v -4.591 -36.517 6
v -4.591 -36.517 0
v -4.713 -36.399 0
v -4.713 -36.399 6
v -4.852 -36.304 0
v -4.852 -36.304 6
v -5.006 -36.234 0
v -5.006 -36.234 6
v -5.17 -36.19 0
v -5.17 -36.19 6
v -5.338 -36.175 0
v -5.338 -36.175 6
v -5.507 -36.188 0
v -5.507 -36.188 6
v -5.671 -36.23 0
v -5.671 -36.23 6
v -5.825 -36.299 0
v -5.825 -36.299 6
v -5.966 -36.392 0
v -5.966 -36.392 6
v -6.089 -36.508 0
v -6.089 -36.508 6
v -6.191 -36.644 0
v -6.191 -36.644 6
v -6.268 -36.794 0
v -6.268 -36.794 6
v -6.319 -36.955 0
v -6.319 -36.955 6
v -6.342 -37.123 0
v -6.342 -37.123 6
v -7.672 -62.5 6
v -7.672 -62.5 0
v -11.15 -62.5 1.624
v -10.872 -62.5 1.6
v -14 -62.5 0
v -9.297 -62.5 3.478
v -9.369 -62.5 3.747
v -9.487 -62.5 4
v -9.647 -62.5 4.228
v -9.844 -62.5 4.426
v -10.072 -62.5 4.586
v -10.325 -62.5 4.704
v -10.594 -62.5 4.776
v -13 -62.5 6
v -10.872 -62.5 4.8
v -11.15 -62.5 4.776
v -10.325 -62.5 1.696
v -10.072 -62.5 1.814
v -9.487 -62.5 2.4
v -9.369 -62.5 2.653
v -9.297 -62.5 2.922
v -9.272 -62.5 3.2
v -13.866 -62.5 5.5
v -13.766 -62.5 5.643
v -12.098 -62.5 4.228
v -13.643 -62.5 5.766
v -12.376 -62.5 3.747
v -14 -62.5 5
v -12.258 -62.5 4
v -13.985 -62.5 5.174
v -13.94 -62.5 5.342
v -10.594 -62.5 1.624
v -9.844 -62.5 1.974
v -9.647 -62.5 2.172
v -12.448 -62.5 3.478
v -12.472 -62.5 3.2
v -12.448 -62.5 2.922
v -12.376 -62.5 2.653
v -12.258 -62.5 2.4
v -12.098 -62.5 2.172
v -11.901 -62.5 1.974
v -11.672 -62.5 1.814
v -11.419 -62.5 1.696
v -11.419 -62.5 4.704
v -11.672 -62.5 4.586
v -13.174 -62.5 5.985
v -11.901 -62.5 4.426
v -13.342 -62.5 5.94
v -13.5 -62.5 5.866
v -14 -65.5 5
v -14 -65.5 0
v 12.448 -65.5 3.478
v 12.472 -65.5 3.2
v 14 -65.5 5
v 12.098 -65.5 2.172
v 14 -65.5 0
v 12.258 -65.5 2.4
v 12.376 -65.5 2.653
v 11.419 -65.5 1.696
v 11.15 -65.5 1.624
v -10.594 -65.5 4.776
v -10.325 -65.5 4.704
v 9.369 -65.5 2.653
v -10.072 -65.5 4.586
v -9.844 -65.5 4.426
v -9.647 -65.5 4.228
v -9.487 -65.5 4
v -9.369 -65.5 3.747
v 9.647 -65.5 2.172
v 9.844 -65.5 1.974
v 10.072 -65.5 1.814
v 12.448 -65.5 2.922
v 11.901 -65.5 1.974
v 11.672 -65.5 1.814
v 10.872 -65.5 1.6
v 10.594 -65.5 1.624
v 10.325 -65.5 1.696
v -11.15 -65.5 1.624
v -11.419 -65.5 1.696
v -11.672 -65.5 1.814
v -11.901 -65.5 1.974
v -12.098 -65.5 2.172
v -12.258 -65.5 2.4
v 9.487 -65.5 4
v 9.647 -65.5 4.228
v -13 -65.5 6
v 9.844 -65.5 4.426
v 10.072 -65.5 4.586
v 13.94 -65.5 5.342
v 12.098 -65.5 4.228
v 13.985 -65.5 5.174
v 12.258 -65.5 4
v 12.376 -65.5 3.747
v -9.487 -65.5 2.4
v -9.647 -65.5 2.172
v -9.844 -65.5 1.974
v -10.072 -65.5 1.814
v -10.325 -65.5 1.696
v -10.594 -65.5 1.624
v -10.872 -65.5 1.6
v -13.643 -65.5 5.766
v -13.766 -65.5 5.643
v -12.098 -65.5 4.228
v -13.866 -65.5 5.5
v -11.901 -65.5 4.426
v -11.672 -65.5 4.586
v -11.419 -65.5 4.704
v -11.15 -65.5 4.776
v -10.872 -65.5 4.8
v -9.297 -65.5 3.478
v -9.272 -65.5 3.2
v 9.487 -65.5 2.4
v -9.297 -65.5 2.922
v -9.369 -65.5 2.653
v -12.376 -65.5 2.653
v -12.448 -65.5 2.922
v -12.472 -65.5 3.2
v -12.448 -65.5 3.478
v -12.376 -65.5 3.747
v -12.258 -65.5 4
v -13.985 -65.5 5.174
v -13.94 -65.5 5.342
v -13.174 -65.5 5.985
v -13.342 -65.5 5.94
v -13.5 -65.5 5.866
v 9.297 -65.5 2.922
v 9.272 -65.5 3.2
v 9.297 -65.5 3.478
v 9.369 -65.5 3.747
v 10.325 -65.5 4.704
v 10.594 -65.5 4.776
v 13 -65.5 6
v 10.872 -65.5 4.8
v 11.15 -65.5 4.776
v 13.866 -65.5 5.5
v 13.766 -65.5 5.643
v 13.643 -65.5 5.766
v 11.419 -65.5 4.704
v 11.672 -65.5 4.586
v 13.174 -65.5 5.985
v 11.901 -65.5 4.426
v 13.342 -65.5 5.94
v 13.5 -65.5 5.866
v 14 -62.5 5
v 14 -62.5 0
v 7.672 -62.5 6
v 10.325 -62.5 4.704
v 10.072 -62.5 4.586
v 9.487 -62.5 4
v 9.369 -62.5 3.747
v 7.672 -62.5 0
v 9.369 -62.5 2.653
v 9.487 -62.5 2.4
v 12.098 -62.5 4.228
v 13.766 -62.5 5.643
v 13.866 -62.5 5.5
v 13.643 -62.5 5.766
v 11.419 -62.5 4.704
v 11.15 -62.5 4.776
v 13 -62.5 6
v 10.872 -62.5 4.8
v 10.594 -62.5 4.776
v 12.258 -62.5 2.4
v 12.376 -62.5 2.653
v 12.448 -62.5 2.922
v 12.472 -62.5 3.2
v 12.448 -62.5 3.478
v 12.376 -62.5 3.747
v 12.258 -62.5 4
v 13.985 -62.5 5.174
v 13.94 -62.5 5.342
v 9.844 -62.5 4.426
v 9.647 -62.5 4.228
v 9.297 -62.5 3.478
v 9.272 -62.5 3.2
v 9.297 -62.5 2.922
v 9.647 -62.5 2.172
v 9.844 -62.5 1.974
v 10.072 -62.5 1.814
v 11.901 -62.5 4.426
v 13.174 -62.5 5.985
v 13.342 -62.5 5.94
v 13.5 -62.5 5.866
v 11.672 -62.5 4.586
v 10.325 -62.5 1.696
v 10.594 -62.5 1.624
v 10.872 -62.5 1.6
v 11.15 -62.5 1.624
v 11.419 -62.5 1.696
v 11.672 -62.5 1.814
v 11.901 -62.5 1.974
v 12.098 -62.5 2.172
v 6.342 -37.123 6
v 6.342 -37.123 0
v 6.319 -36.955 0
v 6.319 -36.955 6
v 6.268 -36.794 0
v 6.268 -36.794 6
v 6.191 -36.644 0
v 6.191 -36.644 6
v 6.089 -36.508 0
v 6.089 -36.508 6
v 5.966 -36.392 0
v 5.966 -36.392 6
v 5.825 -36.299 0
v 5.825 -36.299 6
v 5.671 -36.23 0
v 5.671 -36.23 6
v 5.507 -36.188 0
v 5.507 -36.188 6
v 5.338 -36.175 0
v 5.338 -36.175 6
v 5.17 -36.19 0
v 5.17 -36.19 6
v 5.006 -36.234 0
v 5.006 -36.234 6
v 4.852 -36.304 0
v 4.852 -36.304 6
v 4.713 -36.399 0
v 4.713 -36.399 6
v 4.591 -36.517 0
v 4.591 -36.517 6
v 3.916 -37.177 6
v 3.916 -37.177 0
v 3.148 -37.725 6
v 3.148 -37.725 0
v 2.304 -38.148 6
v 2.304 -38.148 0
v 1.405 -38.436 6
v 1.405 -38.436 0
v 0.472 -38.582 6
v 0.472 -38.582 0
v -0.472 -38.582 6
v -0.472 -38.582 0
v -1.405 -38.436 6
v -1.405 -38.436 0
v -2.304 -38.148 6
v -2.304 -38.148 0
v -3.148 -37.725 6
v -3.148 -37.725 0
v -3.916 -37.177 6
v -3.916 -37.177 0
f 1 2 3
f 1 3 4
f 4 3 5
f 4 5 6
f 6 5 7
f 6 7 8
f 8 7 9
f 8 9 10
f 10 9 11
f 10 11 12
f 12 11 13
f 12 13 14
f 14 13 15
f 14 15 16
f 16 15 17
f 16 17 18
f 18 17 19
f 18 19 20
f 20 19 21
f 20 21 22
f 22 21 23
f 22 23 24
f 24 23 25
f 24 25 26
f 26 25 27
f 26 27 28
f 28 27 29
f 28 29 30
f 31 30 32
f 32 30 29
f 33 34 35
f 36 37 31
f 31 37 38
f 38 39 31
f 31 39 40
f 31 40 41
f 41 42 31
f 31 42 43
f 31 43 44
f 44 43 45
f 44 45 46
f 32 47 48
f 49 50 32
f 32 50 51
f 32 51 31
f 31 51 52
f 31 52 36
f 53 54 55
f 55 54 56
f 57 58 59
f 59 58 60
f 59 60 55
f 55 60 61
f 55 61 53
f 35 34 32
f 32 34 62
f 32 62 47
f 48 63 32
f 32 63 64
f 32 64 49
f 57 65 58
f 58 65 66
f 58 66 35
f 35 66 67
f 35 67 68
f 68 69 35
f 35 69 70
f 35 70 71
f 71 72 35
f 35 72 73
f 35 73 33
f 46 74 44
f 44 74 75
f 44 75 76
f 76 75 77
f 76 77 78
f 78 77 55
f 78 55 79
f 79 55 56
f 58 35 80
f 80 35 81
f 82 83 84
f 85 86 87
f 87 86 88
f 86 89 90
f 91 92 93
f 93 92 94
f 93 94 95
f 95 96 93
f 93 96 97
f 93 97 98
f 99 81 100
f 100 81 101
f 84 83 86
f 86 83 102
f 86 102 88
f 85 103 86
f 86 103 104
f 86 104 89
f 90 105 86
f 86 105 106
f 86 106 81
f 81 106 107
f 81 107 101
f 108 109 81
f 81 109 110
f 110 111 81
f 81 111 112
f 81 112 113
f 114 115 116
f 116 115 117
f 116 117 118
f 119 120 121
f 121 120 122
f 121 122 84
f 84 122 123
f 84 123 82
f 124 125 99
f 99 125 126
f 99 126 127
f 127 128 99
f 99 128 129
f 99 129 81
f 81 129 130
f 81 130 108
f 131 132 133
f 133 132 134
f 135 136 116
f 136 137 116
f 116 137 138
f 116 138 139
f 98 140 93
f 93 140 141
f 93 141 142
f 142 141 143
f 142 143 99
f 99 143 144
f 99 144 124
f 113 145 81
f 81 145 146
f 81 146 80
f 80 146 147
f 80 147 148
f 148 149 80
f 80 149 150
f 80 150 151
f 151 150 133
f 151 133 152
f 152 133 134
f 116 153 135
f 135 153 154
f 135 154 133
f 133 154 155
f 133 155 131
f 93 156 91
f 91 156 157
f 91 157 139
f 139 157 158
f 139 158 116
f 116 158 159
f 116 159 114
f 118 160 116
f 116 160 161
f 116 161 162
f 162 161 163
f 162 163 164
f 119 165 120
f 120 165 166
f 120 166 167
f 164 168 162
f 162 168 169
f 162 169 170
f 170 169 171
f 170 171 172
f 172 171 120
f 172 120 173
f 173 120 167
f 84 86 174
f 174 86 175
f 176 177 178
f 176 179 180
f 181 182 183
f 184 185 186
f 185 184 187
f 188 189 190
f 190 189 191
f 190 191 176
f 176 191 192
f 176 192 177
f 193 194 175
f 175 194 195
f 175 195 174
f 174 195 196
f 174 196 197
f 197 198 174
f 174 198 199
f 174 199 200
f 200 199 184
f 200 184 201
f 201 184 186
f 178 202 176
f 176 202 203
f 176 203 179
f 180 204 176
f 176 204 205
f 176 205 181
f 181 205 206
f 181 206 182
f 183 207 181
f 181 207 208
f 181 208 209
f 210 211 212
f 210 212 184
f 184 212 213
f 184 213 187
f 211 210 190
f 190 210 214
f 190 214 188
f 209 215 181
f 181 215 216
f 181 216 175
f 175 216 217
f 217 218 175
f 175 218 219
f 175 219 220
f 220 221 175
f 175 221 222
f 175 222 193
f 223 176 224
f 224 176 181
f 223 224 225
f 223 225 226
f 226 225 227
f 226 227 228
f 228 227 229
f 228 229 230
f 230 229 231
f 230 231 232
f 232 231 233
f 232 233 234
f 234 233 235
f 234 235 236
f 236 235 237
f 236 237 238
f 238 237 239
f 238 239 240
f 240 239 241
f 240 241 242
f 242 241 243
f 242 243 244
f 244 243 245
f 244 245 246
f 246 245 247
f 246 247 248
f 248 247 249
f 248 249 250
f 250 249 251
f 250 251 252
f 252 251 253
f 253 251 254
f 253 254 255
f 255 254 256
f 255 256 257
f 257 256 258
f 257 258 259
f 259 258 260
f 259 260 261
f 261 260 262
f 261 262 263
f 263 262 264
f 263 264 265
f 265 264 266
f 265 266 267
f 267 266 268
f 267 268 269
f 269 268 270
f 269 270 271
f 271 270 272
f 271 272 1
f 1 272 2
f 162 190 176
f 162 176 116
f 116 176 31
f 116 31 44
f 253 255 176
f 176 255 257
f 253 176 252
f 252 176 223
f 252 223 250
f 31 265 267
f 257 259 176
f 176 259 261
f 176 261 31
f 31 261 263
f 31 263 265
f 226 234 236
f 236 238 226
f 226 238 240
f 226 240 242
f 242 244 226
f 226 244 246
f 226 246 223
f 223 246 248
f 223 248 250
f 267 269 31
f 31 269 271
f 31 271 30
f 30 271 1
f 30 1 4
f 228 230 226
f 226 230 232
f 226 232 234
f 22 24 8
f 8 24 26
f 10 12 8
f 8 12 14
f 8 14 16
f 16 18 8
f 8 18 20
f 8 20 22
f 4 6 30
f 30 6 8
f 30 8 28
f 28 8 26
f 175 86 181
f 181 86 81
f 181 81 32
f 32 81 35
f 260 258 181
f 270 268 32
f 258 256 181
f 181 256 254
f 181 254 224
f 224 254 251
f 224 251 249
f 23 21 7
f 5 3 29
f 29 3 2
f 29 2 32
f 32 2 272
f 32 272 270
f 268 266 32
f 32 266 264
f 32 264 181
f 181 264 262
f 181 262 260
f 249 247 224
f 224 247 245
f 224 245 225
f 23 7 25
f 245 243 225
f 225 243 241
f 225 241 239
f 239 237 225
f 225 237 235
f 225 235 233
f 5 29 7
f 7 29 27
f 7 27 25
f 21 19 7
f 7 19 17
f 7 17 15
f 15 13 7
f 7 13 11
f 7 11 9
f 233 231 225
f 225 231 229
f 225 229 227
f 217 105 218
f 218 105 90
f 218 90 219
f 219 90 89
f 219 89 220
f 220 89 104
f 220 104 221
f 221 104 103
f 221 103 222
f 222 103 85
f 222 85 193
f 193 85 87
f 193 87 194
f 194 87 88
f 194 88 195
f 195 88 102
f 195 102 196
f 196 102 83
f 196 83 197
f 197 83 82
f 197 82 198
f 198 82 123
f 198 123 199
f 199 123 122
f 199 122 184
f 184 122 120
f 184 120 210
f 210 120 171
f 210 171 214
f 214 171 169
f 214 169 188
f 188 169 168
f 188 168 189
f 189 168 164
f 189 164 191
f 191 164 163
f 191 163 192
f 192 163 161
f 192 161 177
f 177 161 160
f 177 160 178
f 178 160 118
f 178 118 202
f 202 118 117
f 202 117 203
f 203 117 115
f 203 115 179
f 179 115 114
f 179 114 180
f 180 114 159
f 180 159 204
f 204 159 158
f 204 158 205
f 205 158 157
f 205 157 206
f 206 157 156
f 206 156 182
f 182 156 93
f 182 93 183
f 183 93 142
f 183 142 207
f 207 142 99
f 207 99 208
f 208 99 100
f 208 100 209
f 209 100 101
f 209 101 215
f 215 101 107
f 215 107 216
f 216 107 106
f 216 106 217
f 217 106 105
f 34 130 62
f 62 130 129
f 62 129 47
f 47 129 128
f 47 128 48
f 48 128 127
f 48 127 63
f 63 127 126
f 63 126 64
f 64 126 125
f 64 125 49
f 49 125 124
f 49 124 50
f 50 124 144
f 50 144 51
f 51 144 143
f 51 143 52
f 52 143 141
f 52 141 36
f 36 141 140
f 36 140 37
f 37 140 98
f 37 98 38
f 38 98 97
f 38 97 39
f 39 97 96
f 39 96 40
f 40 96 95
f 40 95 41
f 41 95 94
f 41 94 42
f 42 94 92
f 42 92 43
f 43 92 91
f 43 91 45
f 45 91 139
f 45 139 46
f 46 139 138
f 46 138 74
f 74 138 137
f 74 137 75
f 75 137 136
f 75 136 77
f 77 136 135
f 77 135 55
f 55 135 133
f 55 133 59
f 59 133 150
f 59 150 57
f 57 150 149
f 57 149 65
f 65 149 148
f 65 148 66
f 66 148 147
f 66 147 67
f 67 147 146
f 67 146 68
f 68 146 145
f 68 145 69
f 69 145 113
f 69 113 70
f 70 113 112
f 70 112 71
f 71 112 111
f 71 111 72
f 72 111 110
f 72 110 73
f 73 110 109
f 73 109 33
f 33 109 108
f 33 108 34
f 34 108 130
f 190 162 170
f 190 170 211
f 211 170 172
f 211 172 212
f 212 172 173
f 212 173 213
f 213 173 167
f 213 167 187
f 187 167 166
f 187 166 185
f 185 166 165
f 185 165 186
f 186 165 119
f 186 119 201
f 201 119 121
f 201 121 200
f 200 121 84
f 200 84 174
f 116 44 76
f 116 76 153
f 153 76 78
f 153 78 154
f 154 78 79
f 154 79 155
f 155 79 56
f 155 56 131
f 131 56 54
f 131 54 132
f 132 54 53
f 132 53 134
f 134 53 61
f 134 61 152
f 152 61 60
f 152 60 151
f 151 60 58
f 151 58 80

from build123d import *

# Parameters (mm, degrees)
BOSS_EXTRUDE1_DEPTH = 6
SKETCH2_R           = 1.6
CUT_EXTRUDE1_DEPTH  = 10
FILLET1_R           = 1


with BuildPart() as part:
    # Sketch1 → Boss-Extrude1 (new body)
    with BuildSketch(Plane.XY):
        with BuildLine():
            Line((-6.342263295, -37.122659043), (-7.672233378, -62.5))
            Line((-7.672233378, -62.5), (-14, -62.5))
            Line((-14, -62.5), (-14, -65.5))
            Line((-14, -65.5), (14, -65.5))
            Line((14, -65.5), (14, -62.5))
            Line((14, -62.5), (7.672233378, -62.5))
            Line((7.672233378, -62.5), (6.342263295, -37.122659043))
            ThreePointArc((6.342263295, -37.122659043), (5.670701308, -36.229994036), (4.591009287, -36.516544999))
            ThreePointArc((4.591009287, -36.516544999), (0, -38.6), (-4.591009287, -36.516544999))
            ThreePointArc((-4.591009287, -36.516544999), (-5.670701308, -36.229994036), (-6.342263295, -37.122659043))
        make_face()
    extrude(amount=BOSS_EXTRUDE1_DEPTH)

    # Sketch2 → Cut-Extrude1 (cut)
    with BuildSketch(Plane.XZ.offset(65.5)):
        with Locations(Location((10.872233378, 3.2, 0), (0, 0, 270))):
            Circle(SKETCH2_R)
        with Locations(Location((-10.872233378, 3.2, 0), (0, 0, 270))):
            Circle(SKETCH2_R)
    extrude(amount=-CUT_EXTRUDE1_DEPTH, mode=Mode.SUBTRACT)

    # Fillet1
    fillet1_edges = [part.edges().sort_by_distance(p)[0] for p in [
        (-14, -64, 6),
        (14, -64, 6),
    ]]
    fillet(fillet1_edges, radius=FILLET1_R)


solid = part.part
